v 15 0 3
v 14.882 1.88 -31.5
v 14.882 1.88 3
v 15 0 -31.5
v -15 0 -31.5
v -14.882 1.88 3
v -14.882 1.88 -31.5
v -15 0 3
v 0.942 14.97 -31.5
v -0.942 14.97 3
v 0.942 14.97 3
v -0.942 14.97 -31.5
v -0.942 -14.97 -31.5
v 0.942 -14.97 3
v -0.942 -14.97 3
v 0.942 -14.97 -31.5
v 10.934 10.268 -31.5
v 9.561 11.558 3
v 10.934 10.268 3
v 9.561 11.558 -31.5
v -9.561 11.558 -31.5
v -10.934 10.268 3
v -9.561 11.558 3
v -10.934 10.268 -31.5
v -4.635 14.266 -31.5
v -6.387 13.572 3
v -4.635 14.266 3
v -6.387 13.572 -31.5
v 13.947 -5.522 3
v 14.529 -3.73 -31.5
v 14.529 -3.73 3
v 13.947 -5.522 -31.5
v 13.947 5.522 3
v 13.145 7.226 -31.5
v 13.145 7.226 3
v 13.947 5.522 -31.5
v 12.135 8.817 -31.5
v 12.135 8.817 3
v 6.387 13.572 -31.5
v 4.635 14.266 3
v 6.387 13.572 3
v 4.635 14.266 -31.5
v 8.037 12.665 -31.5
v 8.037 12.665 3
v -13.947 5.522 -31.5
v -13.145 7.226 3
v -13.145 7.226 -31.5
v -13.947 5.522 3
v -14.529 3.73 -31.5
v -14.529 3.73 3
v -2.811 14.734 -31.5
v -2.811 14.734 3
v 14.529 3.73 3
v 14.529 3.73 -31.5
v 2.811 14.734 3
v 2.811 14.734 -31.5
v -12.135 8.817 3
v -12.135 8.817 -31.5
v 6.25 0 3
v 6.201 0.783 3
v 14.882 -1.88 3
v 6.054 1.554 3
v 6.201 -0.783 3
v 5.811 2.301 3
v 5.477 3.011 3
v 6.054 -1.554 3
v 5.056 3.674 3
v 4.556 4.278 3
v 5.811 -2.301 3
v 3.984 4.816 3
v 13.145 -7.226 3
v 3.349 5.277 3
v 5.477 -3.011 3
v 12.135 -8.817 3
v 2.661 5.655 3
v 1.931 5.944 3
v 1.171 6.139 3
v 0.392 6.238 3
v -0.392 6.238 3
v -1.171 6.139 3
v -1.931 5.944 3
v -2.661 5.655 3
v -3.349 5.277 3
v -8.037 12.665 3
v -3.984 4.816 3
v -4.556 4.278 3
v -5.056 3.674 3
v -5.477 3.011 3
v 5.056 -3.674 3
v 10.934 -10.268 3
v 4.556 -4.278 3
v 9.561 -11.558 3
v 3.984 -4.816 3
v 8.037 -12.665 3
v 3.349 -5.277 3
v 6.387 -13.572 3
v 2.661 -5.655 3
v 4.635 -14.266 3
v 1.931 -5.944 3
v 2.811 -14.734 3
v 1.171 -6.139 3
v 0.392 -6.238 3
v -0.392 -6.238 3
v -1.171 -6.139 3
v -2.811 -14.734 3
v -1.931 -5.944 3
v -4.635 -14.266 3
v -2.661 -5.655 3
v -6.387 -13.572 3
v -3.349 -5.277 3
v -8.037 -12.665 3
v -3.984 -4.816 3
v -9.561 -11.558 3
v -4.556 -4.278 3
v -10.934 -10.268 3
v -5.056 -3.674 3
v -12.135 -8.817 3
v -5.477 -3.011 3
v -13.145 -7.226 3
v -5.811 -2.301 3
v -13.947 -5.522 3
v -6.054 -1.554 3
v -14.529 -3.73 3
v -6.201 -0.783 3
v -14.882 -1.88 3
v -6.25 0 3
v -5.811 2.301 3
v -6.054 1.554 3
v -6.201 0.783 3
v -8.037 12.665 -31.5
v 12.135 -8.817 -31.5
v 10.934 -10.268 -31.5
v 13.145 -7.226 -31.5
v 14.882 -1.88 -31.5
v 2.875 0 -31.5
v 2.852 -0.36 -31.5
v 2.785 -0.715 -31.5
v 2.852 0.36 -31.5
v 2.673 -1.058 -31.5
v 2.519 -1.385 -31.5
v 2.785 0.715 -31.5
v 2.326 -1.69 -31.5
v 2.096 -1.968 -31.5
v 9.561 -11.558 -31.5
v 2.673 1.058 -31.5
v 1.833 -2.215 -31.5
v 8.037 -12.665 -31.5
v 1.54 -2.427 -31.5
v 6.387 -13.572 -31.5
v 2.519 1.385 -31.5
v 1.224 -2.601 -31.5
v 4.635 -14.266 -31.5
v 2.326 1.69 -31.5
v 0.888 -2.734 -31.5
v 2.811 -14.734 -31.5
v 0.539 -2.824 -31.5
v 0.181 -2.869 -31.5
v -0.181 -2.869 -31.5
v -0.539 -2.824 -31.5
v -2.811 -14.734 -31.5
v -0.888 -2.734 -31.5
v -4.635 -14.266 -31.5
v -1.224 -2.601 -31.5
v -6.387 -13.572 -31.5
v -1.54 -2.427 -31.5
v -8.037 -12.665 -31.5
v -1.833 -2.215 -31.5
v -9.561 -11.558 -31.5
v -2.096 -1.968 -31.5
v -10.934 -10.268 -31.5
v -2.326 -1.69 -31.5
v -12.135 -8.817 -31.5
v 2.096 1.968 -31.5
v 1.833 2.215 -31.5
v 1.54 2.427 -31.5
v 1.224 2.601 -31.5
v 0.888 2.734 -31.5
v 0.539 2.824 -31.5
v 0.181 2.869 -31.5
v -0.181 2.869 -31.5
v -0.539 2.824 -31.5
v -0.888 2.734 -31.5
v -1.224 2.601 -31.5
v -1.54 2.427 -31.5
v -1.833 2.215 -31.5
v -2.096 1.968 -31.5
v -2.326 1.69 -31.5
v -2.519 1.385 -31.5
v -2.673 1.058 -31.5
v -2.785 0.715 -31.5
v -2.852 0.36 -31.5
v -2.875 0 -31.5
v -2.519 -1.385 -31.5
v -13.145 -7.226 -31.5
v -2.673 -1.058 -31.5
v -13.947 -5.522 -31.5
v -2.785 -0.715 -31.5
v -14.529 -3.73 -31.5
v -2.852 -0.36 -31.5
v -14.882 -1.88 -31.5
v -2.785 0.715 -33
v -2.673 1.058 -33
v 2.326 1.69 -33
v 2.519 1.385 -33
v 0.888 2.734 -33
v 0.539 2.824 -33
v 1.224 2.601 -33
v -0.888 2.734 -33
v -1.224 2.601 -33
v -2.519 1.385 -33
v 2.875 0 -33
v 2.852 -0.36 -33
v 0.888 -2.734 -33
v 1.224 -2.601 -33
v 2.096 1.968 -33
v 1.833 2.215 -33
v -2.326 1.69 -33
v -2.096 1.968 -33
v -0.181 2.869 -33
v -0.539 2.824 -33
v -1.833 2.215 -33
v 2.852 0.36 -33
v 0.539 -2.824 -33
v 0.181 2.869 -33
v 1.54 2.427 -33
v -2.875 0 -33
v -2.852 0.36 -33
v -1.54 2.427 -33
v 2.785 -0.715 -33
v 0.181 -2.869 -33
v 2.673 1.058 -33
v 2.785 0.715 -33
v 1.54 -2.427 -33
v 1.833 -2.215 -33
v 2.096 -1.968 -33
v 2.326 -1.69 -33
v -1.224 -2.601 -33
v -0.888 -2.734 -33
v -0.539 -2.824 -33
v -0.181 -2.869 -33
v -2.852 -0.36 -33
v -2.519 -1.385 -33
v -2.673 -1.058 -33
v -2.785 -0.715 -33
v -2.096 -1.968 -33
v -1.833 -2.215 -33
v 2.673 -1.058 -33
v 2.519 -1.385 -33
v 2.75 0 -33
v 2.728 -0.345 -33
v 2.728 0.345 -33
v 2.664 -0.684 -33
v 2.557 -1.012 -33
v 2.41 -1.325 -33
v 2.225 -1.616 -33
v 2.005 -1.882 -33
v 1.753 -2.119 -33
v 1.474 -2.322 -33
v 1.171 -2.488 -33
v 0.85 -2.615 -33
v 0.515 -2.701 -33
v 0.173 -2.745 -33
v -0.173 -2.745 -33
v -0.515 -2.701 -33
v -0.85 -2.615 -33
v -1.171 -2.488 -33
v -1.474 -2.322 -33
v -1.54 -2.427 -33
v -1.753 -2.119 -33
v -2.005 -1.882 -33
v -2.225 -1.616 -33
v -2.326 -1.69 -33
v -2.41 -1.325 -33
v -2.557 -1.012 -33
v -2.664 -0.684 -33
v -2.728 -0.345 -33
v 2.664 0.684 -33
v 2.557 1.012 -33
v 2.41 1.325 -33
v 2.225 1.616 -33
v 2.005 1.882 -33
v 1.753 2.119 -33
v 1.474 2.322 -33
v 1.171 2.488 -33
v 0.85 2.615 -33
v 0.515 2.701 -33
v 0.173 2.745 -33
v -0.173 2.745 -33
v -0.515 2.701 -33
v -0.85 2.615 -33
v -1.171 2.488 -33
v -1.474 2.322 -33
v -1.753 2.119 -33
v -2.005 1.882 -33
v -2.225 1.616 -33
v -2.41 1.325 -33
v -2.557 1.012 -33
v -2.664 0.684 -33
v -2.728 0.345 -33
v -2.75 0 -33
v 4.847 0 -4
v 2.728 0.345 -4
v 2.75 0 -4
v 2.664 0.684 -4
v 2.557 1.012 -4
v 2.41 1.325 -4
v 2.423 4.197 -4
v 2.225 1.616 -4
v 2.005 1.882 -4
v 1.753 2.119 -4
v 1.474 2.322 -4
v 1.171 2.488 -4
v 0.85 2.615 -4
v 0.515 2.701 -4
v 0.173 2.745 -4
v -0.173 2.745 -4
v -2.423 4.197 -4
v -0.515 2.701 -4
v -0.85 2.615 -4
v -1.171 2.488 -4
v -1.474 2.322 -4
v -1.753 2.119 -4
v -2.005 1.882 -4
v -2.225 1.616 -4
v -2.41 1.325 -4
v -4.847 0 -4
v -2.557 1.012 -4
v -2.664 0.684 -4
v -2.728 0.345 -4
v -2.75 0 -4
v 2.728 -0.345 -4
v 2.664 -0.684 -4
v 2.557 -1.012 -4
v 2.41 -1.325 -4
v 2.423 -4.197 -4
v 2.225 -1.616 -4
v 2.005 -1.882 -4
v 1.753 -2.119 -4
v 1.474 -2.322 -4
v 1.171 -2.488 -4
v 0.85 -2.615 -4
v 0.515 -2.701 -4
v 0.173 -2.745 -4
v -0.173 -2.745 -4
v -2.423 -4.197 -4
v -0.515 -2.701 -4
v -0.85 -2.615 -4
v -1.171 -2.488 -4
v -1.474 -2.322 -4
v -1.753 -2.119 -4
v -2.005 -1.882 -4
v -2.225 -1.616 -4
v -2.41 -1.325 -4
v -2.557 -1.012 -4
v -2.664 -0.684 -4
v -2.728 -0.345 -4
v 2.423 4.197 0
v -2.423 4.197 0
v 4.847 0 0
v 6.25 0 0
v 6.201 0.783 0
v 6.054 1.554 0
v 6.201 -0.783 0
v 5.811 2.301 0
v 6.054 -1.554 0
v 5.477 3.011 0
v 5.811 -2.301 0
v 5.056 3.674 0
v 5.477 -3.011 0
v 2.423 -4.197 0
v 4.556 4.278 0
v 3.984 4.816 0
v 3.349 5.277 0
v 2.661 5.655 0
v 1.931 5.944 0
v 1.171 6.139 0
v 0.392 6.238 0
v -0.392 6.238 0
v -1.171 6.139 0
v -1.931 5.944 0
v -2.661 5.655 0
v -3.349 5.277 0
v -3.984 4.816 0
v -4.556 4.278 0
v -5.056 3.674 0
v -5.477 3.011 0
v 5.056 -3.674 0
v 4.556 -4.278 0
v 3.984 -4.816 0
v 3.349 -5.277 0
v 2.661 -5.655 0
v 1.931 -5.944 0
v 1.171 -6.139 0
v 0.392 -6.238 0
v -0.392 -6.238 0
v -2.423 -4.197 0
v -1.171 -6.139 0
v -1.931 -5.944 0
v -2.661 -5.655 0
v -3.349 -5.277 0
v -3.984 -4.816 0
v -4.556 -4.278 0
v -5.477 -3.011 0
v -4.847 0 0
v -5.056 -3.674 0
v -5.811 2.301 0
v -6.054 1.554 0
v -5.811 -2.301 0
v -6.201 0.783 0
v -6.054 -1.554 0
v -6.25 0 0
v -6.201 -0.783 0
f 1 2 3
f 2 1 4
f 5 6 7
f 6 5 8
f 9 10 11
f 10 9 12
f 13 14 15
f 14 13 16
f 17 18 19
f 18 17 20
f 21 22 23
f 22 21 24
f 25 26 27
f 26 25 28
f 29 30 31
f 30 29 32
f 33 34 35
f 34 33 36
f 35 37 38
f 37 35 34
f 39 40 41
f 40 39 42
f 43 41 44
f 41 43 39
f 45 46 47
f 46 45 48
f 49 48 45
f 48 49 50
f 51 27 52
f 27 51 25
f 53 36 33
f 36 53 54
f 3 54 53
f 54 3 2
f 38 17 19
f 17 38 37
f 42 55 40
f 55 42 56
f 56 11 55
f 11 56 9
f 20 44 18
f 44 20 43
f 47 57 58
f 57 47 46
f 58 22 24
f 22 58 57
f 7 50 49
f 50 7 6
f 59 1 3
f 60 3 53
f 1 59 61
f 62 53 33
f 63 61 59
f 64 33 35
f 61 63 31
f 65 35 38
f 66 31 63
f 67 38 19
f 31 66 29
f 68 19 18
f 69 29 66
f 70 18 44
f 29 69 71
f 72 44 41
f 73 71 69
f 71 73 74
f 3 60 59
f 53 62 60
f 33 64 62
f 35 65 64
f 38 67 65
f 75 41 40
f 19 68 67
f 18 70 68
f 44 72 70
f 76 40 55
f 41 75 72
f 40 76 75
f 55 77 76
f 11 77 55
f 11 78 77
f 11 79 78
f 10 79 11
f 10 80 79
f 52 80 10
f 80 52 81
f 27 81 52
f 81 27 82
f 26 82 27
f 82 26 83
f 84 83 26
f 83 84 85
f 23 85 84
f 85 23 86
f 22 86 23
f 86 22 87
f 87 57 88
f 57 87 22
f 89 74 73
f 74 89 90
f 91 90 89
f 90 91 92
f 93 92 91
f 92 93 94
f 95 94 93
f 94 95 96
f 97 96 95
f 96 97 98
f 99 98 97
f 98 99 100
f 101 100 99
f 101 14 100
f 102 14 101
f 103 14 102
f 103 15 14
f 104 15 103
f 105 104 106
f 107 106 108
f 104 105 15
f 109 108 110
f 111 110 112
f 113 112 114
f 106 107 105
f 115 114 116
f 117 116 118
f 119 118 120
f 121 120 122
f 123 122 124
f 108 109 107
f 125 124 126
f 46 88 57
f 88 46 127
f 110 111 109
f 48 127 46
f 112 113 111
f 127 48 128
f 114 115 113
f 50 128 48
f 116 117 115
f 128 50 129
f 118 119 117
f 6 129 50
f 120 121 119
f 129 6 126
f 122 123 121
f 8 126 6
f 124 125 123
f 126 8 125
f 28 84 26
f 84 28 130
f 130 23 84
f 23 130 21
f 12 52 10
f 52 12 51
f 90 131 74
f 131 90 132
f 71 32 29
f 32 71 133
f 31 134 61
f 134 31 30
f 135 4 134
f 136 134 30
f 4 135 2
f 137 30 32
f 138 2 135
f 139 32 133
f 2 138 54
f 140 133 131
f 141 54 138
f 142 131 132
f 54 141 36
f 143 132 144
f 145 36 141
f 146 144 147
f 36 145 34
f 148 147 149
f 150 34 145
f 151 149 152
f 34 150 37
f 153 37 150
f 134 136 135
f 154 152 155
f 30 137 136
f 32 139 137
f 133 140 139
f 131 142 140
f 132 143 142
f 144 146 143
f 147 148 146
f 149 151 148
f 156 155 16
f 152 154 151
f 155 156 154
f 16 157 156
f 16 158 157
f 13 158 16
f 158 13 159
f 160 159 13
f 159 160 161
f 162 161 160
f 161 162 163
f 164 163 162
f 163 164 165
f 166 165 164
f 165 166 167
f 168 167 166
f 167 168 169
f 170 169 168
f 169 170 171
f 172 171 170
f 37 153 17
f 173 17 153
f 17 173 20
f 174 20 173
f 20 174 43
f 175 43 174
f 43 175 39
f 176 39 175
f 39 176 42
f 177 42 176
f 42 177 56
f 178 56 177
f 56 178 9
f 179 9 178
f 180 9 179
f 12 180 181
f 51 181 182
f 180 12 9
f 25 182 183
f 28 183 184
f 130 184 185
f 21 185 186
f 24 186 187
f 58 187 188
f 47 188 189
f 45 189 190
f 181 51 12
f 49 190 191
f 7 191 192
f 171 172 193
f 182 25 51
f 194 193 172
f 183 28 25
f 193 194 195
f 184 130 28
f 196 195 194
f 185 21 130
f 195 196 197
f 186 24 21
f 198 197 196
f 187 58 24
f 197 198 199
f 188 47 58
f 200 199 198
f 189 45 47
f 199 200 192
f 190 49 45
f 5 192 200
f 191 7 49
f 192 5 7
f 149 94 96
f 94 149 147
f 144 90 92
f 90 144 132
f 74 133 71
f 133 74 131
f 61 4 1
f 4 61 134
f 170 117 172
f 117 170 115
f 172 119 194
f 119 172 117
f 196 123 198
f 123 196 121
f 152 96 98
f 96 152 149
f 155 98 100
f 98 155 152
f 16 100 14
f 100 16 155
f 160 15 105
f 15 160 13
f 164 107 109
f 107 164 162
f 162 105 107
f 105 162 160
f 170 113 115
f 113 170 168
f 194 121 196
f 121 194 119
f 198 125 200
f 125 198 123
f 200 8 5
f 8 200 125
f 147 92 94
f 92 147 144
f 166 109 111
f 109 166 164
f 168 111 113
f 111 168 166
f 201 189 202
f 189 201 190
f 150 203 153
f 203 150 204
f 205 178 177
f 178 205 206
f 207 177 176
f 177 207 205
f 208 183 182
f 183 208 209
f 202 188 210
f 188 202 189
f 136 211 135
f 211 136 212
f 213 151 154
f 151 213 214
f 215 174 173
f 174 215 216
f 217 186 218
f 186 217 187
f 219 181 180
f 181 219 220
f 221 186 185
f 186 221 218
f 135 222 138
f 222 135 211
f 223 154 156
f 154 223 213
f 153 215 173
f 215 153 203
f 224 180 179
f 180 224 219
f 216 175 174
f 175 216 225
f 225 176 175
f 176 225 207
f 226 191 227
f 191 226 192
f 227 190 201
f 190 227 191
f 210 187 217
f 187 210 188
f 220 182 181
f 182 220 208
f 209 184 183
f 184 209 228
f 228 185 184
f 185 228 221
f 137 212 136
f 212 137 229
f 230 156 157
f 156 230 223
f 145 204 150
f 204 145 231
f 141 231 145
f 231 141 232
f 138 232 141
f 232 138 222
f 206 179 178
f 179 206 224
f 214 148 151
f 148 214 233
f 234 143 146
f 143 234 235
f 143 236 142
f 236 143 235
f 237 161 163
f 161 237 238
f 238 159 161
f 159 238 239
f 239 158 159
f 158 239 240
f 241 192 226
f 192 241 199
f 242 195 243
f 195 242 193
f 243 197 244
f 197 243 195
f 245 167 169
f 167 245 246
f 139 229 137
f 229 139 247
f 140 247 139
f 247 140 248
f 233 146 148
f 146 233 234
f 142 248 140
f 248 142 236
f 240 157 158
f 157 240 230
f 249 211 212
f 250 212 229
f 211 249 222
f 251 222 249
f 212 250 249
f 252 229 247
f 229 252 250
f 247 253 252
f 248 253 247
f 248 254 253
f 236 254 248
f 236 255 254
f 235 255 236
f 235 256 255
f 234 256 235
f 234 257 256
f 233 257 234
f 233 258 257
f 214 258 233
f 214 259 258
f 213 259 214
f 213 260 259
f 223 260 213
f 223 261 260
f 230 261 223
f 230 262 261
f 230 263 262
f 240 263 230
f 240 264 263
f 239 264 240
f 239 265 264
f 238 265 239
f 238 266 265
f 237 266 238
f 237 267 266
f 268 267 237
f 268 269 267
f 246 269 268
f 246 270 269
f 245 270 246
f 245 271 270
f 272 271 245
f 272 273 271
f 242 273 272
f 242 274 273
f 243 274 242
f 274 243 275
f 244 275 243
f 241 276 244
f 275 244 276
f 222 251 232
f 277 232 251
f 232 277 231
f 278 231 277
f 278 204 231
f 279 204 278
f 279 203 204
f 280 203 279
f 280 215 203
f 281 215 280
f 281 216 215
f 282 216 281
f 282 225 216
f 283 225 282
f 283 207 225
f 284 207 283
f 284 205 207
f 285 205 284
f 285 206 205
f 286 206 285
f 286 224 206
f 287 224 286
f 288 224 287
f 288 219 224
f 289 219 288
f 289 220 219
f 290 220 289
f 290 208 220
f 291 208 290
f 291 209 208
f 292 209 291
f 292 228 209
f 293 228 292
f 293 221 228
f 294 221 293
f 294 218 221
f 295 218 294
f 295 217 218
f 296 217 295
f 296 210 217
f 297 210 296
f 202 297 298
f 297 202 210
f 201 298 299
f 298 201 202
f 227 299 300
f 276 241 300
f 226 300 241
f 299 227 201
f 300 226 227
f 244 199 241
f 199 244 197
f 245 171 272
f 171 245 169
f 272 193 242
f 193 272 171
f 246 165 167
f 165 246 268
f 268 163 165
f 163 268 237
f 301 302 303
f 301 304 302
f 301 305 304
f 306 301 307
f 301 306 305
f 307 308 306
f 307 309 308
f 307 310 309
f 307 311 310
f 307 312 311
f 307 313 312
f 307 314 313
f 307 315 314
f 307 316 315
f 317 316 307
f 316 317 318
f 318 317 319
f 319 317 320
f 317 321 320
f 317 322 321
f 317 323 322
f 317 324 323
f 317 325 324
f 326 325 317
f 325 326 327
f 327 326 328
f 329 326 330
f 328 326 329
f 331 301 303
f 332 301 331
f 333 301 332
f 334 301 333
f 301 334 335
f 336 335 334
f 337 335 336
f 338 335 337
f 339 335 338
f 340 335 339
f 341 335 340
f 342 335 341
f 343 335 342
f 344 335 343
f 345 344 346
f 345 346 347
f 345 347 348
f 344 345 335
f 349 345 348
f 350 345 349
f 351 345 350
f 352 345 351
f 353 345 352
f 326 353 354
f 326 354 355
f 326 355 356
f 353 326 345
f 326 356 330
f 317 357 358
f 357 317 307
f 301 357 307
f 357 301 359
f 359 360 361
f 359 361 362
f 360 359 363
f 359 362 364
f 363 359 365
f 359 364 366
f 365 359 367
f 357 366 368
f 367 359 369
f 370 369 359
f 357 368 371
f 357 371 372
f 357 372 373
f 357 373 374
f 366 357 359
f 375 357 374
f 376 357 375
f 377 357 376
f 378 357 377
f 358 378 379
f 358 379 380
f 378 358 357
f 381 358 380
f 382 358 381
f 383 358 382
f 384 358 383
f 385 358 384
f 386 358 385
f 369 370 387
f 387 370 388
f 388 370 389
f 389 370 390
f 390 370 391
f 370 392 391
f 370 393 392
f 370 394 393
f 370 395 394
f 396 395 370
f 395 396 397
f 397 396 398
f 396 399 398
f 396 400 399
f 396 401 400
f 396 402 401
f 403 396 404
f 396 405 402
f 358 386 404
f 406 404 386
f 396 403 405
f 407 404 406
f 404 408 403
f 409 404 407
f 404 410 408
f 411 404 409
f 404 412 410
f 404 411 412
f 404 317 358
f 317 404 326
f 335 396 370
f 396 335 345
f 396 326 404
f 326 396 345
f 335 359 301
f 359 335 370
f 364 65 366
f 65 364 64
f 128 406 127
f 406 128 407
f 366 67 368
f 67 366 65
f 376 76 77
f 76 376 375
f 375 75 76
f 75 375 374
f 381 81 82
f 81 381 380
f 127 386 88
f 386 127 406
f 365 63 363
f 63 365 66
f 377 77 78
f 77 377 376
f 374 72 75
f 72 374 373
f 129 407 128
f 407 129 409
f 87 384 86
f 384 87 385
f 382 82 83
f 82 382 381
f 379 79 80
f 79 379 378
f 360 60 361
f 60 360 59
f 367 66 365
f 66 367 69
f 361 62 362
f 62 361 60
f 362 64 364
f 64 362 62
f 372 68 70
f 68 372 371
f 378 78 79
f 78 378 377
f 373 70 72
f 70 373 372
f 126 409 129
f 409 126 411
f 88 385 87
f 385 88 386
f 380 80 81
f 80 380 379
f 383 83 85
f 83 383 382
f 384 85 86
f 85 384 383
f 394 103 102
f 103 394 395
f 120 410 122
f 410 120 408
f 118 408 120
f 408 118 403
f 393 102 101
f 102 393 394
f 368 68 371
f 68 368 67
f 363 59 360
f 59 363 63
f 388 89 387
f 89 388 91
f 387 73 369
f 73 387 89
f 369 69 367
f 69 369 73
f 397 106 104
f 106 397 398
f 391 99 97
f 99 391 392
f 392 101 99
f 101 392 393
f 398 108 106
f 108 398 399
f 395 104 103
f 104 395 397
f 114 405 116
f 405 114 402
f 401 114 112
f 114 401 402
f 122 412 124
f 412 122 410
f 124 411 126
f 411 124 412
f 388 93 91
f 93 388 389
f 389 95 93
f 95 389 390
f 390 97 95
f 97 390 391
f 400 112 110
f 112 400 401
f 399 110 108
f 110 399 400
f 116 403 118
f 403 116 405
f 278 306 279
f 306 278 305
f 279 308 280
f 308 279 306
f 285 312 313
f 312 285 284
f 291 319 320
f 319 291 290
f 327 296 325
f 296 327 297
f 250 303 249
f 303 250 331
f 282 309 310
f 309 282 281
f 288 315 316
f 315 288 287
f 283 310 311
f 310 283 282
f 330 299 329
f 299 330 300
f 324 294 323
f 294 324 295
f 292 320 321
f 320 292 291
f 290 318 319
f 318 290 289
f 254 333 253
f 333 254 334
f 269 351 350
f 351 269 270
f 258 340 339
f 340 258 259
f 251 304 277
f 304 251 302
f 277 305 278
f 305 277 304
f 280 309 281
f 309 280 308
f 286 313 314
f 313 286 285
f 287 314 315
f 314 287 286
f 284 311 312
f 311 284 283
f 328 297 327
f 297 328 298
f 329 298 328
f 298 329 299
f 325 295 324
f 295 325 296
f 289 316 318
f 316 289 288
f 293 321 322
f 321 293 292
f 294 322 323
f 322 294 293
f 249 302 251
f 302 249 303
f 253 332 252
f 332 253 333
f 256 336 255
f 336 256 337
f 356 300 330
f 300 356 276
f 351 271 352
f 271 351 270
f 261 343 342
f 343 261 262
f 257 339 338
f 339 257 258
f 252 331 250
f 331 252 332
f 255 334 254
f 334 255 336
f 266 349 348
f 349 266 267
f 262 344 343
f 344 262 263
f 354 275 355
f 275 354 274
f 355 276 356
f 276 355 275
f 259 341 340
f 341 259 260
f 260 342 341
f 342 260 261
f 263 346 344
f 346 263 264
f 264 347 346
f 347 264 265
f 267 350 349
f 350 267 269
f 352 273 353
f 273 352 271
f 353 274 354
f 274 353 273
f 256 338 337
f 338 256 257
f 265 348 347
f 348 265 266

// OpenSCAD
$fn = 50;

difference() {
	union() {
		translate(v = [0, 0, -31.5]) {
			cylinder(h = 34.5, r = 15.0);
		}
		#translate(v = [0, 0, -33.0]) {
			cylinder(h = 33, r = 2.875);
		}
	}
	union() {
		translate(v = [0, 0, 0]) {
			rotate(a = [0, 0, 0]) {
				difference() {
					union() {
						translate(v = [0, 0, -4]) {
							linear_extrude(height = 4) {
								polygon(points = [[4.8468, 0.0], [2.4234000000000004, 4.197451927062417], [-2.423399999999999, 4.197451927062417], [-4.8468, 5.935618106107392e-16], [-2.423400000000002, -4.197451927062416], [2.423399999999997, -4.197451927062419]]);
							}
						}
					}
					union();
				}
			}
		}
		#cylinder(h = 3, r = 6.25);
		#translate(v = [0, 0, -100.0]) {
			cylinder(h = 200, r = 2.75);
		}
	}
}
